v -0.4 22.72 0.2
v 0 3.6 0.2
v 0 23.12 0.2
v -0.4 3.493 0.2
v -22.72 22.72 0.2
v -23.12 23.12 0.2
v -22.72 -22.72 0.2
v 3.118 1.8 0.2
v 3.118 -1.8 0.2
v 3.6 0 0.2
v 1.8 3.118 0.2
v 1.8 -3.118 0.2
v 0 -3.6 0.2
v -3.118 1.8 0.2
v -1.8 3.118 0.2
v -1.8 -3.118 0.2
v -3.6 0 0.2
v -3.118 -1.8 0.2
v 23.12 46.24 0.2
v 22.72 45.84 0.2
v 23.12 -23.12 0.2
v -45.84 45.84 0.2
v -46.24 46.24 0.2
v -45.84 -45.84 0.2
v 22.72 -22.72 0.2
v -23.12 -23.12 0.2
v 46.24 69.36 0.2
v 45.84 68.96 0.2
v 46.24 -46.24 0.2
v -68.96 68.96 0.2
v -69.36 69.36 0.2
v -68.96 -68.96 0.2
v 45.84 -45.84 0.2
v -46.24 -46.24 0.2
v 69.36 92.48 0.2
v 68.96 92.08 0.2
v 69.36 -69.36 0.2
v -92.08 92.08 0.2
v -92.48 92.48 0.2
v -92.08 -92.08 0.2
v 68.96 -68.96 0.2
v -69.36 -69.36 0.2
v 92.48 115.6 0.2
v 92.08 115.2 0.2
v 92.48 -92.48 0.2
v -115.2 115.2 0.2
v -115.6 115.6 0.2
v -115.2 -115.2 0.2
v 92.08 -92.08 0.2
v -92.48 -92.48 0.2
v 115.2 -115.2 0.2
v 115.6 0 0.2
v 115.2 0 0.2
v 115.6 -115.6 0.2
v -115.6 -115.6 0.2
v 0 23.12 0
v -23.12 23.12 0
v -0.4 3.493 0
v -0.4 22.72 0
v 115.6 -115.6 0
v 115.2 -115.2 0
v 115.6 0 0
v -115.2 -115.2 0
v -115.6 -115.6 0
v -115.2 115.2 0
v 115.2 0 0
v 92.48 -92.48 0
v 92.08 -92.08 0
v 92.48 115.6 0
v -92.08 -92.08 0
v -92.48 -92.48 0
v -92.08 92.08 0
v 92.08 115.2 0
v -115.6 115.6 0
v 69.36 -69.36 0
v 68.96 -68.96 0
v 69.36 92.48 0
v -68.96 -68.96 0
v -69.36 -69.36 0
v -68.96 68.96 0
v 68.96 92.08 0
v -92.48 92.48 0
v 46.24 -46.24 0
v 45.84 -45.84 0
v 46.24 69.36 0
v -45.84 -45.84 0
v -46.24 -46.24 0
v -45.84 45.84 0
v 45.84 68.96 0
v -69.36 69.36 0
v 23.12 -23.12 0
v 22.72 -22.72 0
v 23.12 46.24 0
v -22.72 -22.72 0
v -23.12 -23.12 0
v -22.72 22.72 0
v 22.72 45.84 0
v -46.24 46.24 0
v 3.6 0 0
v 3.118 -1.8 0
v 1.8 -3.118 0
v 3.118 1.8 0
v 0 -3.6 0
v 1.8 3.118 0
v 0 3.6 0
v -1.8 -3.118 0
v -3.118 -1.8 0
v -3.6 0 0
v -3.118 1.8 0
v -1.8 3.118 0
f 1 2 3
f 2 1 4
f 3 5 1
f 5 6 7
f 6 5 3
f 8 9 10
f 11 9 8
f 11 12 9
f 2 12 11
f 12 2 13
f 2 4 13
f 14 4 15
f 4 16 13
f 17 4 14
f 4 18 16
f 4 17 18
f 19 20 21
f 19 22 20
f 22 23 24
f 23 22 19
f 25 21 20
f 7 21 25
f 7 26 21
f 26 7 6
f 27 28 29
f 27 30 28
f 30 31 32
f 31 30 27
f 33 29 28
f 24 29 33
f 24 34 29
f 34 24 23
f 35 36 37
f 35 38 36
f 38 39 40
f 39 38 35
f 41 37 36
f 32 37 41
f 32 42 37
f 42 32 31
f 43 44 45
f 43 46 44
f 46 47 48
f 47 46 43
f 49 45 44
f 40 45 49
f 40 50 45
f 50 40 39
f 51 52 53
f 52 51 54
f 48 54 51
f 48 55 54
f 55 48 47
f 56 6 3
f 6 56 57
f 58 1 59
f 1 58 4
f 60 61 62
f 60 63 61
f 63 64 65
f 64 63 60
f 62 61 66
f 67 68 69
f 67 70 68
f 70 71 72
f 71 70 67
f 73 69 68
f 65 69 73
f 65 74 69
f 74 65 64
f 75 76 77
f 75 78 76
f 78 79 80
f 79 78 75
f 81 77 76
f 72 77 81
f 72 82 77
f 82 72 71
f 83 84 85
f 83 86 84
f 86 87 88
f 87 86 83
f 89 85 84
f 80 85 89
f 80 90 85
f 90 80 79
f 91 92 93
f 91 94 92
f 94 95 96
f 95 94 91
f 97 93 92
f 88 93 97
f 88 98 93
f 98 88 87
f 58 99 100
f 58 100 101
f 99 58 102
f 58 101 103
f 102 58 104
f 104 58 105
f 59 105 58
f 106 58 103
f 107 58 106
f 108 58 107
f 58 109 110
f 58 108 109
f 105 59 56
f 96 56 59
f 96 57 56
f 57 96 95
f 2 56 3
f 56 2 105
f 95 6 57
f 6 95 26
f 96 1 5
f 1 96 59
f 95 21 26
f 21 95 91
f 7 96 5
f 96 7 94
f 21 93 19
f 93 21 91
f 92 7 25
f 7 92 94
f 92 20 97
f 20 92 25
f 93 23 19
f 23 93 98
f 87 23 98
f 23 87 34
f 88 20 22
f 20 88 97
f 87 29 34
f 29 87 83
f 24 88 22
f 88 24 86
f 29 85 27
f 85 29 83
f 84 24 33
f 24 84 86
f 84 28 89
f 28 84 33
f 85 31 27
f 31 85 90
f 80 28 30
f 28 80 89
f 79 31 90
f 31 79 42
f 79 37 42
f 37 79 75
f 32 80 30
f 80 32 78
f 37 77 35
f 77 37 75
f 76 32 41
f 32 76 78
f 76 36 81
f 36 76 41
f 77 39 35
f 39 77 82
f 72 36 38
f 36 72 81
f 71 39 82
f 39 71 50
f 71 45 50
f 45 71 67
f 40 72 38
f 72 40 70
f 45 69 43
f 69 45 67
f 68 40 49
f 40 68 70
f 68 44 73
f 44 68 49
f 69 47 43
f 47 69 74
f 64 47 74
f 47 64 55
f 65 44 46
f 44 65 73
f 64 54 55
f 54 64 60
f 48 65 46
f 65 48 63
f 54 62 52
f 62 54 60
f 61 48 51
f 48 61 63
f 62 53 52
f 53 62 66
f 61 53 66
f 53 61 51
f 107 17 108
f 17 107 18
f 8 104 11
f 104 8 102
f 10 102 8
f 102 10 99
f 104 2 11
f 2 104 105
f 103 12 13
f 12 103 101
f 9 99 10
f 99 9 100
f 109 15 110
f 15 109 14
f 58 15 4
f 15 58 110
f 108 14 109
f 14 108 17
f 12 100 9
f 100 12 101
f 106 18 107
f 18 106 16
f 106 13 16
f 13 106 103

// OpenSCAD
// A bed level check

// Fillament height and width (mm)
fh=0.2;
fw=0.4;

// Size of centre circle
circle_turns=18;

// Bounding size for square spiral
bound_x=232-2*fw;
bound_y=232-2*fw;

// Number of loops in outer spiral
square_turns=5;


cylinder(fh,r=fw*circle_turns/2);
for(i=[1:square_turns]) {
    translate([bound_x/2*i/square_turns-bound_x/2*1/square_turns,0,0]) rotate([0,0,90]) cube([bound_x/2*i/square_turns,fw,fh]);
    translate([bound_x/2*i/square_turns-bound_x/2*1/square_turns,bound_x/2*i/square_turns,0]) rotate([0,0,180]) cube([2*bound_x/2*i/square_turns-bound_x/2*1/square_turns,fw,fh]);
    translate([-bound_x/2*i/square_turns,bound_x/2*i/square_turns,0]) rotate([0,0,270]) cube([2*bound_x/2*i/square_turns,fw,fh]);
    translate([-bound_x/2*i/square_turns,-bound_x/2*i/square_turns,0]) rotate([0,0,0]) cube([2*bound_x/2*i/square_turns,fw,fh]);
    translate([bound_x/2*i/square_turns,-bound_x/2*i/square_turns,0]) rotate([0,0,90]) cube([bound_x/2*i/square_turns,fw,fh]);
}
